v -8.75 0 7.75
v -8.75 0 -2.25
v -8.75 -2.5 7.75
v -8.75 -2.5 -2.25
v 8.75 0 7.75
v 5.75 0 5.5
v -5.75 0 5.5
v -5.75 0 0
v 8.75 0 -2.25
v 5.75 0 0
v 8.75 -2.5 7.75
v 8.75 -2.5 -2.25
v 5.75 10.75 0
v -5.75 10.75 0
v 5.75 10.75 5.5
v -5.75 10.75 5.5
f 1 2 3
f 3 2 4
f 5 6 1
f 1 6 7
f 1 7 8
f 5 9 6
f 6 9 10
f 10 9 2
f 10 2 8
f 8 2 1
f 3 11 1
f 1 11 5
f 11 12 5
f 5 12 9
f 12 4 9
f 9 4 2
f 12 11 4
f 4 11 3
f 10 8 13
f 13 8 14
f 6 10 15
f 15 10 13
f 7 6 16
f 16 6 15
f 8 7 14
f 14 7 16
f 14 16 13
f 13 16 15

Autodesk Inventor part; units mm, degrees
ref_plane "YZ Plane" through (0, 0, 0) normal (1, 0, 0) x (0, 1, 0)
ref_plane "XZ Plane" through (0, 0, 0) normal (0, 1, 0) x (-1, 0, 0)
ref_plane "XY Plane" through (0, 0, 0) normal (0, 0, 1) x (1, 0, 0)
sketch "Sketch1" plane through (0, 0, 0) normal (0, 1, 0) x (-1, 0, 0)
  line L0 (0, 0) -> (5.75, 0)
  line L1 (5.75, 0) -> (5.75, 5.5)
  line L2 (5.75, 5.5) -> (0, 5.5)
  line L3 (0, 5.5) -> (0, 0)
  point P0 (0, 0)
  dimension "d0" = 5.75
  dimension "d1" = 5.5
  dimension "d2" = 0
  dimension "d3" = 0
extrude "Extrusion1" add sketch "Sketch1" along normal blind 10.75
sketch "Sketch2" plane through (0, 0, 5.5) normal (1, 0, 0) x (0, 0, -1)
  line L0 (5.5, 10.75) -> (0, 10.75) projected
  line L1 (0, 10.75) -> (5.5, 10.75)
  line L2 (5.5, 10.75) -> (5.5, -0.5)
  line L3 (5.5, -0.5) -> (0, -0.5)
  line L4 (0, -0.5) -> (0, 10.75)
  point P0 (5.5, 0)
  dimension "d6" = 11.25
  dimension "d7" = 5.5
extrude "Extrusion2" add sketch "Sketch2" along normal blind 5.75
sketch "Sketch3" plane through (0, -0.5, 0) normal (0, -1, 0) x (1, 0, 0)
  line L0 (0, -2.25) -> (8.75, -2.25)
  line L1 (8.75, -2.25) -> (8.75, 7.75)
  line L2 (8.75, 7.75) -> (0, 7.75)
  line L3 (0, 7.75) -> (0, -2.25)
  line L4 (0, 5.5) -> (0, 0) projected
  line L5 (0, 5.5) -> (5.75, 5.5) projected
  dimension "d10" = 10
  dimension "d11" = 8.75
  dimension "d12" = 0
  dimension "d13" = 2.25
extrude "Extrusion3" add sketch "Sketch3" along normal blind 2 and the other way blind 0.5
sketch "Sketch4" plane through (0, 0, 0) normal (0, -1, 0) x (1, 0, 0)
  line L0 (-8.75, 7.75) -> (0, 7.75)
  line L1 (0, 7.75) -> (0, -2.25)
  line L2 (0, -2.25) -> (-8.75, -2.25)
  line L3 (-8.75, -2.25) -> (-8.75, 7.75)
  line L4 (0, 5.5) -> (0, 0) projected
  line L5 (0, 0) -> (-5.75, 0) projected
  dimension "d16" = 10
  dimension "d17" = 8.75
  dimension "d18" = 0
  dimension "d19" = 2.25
extrude "Extrusion4" add sketch "Sketch4" along normal blind 2.5
properties part number "Black_Keyboard_Button_Prong"
